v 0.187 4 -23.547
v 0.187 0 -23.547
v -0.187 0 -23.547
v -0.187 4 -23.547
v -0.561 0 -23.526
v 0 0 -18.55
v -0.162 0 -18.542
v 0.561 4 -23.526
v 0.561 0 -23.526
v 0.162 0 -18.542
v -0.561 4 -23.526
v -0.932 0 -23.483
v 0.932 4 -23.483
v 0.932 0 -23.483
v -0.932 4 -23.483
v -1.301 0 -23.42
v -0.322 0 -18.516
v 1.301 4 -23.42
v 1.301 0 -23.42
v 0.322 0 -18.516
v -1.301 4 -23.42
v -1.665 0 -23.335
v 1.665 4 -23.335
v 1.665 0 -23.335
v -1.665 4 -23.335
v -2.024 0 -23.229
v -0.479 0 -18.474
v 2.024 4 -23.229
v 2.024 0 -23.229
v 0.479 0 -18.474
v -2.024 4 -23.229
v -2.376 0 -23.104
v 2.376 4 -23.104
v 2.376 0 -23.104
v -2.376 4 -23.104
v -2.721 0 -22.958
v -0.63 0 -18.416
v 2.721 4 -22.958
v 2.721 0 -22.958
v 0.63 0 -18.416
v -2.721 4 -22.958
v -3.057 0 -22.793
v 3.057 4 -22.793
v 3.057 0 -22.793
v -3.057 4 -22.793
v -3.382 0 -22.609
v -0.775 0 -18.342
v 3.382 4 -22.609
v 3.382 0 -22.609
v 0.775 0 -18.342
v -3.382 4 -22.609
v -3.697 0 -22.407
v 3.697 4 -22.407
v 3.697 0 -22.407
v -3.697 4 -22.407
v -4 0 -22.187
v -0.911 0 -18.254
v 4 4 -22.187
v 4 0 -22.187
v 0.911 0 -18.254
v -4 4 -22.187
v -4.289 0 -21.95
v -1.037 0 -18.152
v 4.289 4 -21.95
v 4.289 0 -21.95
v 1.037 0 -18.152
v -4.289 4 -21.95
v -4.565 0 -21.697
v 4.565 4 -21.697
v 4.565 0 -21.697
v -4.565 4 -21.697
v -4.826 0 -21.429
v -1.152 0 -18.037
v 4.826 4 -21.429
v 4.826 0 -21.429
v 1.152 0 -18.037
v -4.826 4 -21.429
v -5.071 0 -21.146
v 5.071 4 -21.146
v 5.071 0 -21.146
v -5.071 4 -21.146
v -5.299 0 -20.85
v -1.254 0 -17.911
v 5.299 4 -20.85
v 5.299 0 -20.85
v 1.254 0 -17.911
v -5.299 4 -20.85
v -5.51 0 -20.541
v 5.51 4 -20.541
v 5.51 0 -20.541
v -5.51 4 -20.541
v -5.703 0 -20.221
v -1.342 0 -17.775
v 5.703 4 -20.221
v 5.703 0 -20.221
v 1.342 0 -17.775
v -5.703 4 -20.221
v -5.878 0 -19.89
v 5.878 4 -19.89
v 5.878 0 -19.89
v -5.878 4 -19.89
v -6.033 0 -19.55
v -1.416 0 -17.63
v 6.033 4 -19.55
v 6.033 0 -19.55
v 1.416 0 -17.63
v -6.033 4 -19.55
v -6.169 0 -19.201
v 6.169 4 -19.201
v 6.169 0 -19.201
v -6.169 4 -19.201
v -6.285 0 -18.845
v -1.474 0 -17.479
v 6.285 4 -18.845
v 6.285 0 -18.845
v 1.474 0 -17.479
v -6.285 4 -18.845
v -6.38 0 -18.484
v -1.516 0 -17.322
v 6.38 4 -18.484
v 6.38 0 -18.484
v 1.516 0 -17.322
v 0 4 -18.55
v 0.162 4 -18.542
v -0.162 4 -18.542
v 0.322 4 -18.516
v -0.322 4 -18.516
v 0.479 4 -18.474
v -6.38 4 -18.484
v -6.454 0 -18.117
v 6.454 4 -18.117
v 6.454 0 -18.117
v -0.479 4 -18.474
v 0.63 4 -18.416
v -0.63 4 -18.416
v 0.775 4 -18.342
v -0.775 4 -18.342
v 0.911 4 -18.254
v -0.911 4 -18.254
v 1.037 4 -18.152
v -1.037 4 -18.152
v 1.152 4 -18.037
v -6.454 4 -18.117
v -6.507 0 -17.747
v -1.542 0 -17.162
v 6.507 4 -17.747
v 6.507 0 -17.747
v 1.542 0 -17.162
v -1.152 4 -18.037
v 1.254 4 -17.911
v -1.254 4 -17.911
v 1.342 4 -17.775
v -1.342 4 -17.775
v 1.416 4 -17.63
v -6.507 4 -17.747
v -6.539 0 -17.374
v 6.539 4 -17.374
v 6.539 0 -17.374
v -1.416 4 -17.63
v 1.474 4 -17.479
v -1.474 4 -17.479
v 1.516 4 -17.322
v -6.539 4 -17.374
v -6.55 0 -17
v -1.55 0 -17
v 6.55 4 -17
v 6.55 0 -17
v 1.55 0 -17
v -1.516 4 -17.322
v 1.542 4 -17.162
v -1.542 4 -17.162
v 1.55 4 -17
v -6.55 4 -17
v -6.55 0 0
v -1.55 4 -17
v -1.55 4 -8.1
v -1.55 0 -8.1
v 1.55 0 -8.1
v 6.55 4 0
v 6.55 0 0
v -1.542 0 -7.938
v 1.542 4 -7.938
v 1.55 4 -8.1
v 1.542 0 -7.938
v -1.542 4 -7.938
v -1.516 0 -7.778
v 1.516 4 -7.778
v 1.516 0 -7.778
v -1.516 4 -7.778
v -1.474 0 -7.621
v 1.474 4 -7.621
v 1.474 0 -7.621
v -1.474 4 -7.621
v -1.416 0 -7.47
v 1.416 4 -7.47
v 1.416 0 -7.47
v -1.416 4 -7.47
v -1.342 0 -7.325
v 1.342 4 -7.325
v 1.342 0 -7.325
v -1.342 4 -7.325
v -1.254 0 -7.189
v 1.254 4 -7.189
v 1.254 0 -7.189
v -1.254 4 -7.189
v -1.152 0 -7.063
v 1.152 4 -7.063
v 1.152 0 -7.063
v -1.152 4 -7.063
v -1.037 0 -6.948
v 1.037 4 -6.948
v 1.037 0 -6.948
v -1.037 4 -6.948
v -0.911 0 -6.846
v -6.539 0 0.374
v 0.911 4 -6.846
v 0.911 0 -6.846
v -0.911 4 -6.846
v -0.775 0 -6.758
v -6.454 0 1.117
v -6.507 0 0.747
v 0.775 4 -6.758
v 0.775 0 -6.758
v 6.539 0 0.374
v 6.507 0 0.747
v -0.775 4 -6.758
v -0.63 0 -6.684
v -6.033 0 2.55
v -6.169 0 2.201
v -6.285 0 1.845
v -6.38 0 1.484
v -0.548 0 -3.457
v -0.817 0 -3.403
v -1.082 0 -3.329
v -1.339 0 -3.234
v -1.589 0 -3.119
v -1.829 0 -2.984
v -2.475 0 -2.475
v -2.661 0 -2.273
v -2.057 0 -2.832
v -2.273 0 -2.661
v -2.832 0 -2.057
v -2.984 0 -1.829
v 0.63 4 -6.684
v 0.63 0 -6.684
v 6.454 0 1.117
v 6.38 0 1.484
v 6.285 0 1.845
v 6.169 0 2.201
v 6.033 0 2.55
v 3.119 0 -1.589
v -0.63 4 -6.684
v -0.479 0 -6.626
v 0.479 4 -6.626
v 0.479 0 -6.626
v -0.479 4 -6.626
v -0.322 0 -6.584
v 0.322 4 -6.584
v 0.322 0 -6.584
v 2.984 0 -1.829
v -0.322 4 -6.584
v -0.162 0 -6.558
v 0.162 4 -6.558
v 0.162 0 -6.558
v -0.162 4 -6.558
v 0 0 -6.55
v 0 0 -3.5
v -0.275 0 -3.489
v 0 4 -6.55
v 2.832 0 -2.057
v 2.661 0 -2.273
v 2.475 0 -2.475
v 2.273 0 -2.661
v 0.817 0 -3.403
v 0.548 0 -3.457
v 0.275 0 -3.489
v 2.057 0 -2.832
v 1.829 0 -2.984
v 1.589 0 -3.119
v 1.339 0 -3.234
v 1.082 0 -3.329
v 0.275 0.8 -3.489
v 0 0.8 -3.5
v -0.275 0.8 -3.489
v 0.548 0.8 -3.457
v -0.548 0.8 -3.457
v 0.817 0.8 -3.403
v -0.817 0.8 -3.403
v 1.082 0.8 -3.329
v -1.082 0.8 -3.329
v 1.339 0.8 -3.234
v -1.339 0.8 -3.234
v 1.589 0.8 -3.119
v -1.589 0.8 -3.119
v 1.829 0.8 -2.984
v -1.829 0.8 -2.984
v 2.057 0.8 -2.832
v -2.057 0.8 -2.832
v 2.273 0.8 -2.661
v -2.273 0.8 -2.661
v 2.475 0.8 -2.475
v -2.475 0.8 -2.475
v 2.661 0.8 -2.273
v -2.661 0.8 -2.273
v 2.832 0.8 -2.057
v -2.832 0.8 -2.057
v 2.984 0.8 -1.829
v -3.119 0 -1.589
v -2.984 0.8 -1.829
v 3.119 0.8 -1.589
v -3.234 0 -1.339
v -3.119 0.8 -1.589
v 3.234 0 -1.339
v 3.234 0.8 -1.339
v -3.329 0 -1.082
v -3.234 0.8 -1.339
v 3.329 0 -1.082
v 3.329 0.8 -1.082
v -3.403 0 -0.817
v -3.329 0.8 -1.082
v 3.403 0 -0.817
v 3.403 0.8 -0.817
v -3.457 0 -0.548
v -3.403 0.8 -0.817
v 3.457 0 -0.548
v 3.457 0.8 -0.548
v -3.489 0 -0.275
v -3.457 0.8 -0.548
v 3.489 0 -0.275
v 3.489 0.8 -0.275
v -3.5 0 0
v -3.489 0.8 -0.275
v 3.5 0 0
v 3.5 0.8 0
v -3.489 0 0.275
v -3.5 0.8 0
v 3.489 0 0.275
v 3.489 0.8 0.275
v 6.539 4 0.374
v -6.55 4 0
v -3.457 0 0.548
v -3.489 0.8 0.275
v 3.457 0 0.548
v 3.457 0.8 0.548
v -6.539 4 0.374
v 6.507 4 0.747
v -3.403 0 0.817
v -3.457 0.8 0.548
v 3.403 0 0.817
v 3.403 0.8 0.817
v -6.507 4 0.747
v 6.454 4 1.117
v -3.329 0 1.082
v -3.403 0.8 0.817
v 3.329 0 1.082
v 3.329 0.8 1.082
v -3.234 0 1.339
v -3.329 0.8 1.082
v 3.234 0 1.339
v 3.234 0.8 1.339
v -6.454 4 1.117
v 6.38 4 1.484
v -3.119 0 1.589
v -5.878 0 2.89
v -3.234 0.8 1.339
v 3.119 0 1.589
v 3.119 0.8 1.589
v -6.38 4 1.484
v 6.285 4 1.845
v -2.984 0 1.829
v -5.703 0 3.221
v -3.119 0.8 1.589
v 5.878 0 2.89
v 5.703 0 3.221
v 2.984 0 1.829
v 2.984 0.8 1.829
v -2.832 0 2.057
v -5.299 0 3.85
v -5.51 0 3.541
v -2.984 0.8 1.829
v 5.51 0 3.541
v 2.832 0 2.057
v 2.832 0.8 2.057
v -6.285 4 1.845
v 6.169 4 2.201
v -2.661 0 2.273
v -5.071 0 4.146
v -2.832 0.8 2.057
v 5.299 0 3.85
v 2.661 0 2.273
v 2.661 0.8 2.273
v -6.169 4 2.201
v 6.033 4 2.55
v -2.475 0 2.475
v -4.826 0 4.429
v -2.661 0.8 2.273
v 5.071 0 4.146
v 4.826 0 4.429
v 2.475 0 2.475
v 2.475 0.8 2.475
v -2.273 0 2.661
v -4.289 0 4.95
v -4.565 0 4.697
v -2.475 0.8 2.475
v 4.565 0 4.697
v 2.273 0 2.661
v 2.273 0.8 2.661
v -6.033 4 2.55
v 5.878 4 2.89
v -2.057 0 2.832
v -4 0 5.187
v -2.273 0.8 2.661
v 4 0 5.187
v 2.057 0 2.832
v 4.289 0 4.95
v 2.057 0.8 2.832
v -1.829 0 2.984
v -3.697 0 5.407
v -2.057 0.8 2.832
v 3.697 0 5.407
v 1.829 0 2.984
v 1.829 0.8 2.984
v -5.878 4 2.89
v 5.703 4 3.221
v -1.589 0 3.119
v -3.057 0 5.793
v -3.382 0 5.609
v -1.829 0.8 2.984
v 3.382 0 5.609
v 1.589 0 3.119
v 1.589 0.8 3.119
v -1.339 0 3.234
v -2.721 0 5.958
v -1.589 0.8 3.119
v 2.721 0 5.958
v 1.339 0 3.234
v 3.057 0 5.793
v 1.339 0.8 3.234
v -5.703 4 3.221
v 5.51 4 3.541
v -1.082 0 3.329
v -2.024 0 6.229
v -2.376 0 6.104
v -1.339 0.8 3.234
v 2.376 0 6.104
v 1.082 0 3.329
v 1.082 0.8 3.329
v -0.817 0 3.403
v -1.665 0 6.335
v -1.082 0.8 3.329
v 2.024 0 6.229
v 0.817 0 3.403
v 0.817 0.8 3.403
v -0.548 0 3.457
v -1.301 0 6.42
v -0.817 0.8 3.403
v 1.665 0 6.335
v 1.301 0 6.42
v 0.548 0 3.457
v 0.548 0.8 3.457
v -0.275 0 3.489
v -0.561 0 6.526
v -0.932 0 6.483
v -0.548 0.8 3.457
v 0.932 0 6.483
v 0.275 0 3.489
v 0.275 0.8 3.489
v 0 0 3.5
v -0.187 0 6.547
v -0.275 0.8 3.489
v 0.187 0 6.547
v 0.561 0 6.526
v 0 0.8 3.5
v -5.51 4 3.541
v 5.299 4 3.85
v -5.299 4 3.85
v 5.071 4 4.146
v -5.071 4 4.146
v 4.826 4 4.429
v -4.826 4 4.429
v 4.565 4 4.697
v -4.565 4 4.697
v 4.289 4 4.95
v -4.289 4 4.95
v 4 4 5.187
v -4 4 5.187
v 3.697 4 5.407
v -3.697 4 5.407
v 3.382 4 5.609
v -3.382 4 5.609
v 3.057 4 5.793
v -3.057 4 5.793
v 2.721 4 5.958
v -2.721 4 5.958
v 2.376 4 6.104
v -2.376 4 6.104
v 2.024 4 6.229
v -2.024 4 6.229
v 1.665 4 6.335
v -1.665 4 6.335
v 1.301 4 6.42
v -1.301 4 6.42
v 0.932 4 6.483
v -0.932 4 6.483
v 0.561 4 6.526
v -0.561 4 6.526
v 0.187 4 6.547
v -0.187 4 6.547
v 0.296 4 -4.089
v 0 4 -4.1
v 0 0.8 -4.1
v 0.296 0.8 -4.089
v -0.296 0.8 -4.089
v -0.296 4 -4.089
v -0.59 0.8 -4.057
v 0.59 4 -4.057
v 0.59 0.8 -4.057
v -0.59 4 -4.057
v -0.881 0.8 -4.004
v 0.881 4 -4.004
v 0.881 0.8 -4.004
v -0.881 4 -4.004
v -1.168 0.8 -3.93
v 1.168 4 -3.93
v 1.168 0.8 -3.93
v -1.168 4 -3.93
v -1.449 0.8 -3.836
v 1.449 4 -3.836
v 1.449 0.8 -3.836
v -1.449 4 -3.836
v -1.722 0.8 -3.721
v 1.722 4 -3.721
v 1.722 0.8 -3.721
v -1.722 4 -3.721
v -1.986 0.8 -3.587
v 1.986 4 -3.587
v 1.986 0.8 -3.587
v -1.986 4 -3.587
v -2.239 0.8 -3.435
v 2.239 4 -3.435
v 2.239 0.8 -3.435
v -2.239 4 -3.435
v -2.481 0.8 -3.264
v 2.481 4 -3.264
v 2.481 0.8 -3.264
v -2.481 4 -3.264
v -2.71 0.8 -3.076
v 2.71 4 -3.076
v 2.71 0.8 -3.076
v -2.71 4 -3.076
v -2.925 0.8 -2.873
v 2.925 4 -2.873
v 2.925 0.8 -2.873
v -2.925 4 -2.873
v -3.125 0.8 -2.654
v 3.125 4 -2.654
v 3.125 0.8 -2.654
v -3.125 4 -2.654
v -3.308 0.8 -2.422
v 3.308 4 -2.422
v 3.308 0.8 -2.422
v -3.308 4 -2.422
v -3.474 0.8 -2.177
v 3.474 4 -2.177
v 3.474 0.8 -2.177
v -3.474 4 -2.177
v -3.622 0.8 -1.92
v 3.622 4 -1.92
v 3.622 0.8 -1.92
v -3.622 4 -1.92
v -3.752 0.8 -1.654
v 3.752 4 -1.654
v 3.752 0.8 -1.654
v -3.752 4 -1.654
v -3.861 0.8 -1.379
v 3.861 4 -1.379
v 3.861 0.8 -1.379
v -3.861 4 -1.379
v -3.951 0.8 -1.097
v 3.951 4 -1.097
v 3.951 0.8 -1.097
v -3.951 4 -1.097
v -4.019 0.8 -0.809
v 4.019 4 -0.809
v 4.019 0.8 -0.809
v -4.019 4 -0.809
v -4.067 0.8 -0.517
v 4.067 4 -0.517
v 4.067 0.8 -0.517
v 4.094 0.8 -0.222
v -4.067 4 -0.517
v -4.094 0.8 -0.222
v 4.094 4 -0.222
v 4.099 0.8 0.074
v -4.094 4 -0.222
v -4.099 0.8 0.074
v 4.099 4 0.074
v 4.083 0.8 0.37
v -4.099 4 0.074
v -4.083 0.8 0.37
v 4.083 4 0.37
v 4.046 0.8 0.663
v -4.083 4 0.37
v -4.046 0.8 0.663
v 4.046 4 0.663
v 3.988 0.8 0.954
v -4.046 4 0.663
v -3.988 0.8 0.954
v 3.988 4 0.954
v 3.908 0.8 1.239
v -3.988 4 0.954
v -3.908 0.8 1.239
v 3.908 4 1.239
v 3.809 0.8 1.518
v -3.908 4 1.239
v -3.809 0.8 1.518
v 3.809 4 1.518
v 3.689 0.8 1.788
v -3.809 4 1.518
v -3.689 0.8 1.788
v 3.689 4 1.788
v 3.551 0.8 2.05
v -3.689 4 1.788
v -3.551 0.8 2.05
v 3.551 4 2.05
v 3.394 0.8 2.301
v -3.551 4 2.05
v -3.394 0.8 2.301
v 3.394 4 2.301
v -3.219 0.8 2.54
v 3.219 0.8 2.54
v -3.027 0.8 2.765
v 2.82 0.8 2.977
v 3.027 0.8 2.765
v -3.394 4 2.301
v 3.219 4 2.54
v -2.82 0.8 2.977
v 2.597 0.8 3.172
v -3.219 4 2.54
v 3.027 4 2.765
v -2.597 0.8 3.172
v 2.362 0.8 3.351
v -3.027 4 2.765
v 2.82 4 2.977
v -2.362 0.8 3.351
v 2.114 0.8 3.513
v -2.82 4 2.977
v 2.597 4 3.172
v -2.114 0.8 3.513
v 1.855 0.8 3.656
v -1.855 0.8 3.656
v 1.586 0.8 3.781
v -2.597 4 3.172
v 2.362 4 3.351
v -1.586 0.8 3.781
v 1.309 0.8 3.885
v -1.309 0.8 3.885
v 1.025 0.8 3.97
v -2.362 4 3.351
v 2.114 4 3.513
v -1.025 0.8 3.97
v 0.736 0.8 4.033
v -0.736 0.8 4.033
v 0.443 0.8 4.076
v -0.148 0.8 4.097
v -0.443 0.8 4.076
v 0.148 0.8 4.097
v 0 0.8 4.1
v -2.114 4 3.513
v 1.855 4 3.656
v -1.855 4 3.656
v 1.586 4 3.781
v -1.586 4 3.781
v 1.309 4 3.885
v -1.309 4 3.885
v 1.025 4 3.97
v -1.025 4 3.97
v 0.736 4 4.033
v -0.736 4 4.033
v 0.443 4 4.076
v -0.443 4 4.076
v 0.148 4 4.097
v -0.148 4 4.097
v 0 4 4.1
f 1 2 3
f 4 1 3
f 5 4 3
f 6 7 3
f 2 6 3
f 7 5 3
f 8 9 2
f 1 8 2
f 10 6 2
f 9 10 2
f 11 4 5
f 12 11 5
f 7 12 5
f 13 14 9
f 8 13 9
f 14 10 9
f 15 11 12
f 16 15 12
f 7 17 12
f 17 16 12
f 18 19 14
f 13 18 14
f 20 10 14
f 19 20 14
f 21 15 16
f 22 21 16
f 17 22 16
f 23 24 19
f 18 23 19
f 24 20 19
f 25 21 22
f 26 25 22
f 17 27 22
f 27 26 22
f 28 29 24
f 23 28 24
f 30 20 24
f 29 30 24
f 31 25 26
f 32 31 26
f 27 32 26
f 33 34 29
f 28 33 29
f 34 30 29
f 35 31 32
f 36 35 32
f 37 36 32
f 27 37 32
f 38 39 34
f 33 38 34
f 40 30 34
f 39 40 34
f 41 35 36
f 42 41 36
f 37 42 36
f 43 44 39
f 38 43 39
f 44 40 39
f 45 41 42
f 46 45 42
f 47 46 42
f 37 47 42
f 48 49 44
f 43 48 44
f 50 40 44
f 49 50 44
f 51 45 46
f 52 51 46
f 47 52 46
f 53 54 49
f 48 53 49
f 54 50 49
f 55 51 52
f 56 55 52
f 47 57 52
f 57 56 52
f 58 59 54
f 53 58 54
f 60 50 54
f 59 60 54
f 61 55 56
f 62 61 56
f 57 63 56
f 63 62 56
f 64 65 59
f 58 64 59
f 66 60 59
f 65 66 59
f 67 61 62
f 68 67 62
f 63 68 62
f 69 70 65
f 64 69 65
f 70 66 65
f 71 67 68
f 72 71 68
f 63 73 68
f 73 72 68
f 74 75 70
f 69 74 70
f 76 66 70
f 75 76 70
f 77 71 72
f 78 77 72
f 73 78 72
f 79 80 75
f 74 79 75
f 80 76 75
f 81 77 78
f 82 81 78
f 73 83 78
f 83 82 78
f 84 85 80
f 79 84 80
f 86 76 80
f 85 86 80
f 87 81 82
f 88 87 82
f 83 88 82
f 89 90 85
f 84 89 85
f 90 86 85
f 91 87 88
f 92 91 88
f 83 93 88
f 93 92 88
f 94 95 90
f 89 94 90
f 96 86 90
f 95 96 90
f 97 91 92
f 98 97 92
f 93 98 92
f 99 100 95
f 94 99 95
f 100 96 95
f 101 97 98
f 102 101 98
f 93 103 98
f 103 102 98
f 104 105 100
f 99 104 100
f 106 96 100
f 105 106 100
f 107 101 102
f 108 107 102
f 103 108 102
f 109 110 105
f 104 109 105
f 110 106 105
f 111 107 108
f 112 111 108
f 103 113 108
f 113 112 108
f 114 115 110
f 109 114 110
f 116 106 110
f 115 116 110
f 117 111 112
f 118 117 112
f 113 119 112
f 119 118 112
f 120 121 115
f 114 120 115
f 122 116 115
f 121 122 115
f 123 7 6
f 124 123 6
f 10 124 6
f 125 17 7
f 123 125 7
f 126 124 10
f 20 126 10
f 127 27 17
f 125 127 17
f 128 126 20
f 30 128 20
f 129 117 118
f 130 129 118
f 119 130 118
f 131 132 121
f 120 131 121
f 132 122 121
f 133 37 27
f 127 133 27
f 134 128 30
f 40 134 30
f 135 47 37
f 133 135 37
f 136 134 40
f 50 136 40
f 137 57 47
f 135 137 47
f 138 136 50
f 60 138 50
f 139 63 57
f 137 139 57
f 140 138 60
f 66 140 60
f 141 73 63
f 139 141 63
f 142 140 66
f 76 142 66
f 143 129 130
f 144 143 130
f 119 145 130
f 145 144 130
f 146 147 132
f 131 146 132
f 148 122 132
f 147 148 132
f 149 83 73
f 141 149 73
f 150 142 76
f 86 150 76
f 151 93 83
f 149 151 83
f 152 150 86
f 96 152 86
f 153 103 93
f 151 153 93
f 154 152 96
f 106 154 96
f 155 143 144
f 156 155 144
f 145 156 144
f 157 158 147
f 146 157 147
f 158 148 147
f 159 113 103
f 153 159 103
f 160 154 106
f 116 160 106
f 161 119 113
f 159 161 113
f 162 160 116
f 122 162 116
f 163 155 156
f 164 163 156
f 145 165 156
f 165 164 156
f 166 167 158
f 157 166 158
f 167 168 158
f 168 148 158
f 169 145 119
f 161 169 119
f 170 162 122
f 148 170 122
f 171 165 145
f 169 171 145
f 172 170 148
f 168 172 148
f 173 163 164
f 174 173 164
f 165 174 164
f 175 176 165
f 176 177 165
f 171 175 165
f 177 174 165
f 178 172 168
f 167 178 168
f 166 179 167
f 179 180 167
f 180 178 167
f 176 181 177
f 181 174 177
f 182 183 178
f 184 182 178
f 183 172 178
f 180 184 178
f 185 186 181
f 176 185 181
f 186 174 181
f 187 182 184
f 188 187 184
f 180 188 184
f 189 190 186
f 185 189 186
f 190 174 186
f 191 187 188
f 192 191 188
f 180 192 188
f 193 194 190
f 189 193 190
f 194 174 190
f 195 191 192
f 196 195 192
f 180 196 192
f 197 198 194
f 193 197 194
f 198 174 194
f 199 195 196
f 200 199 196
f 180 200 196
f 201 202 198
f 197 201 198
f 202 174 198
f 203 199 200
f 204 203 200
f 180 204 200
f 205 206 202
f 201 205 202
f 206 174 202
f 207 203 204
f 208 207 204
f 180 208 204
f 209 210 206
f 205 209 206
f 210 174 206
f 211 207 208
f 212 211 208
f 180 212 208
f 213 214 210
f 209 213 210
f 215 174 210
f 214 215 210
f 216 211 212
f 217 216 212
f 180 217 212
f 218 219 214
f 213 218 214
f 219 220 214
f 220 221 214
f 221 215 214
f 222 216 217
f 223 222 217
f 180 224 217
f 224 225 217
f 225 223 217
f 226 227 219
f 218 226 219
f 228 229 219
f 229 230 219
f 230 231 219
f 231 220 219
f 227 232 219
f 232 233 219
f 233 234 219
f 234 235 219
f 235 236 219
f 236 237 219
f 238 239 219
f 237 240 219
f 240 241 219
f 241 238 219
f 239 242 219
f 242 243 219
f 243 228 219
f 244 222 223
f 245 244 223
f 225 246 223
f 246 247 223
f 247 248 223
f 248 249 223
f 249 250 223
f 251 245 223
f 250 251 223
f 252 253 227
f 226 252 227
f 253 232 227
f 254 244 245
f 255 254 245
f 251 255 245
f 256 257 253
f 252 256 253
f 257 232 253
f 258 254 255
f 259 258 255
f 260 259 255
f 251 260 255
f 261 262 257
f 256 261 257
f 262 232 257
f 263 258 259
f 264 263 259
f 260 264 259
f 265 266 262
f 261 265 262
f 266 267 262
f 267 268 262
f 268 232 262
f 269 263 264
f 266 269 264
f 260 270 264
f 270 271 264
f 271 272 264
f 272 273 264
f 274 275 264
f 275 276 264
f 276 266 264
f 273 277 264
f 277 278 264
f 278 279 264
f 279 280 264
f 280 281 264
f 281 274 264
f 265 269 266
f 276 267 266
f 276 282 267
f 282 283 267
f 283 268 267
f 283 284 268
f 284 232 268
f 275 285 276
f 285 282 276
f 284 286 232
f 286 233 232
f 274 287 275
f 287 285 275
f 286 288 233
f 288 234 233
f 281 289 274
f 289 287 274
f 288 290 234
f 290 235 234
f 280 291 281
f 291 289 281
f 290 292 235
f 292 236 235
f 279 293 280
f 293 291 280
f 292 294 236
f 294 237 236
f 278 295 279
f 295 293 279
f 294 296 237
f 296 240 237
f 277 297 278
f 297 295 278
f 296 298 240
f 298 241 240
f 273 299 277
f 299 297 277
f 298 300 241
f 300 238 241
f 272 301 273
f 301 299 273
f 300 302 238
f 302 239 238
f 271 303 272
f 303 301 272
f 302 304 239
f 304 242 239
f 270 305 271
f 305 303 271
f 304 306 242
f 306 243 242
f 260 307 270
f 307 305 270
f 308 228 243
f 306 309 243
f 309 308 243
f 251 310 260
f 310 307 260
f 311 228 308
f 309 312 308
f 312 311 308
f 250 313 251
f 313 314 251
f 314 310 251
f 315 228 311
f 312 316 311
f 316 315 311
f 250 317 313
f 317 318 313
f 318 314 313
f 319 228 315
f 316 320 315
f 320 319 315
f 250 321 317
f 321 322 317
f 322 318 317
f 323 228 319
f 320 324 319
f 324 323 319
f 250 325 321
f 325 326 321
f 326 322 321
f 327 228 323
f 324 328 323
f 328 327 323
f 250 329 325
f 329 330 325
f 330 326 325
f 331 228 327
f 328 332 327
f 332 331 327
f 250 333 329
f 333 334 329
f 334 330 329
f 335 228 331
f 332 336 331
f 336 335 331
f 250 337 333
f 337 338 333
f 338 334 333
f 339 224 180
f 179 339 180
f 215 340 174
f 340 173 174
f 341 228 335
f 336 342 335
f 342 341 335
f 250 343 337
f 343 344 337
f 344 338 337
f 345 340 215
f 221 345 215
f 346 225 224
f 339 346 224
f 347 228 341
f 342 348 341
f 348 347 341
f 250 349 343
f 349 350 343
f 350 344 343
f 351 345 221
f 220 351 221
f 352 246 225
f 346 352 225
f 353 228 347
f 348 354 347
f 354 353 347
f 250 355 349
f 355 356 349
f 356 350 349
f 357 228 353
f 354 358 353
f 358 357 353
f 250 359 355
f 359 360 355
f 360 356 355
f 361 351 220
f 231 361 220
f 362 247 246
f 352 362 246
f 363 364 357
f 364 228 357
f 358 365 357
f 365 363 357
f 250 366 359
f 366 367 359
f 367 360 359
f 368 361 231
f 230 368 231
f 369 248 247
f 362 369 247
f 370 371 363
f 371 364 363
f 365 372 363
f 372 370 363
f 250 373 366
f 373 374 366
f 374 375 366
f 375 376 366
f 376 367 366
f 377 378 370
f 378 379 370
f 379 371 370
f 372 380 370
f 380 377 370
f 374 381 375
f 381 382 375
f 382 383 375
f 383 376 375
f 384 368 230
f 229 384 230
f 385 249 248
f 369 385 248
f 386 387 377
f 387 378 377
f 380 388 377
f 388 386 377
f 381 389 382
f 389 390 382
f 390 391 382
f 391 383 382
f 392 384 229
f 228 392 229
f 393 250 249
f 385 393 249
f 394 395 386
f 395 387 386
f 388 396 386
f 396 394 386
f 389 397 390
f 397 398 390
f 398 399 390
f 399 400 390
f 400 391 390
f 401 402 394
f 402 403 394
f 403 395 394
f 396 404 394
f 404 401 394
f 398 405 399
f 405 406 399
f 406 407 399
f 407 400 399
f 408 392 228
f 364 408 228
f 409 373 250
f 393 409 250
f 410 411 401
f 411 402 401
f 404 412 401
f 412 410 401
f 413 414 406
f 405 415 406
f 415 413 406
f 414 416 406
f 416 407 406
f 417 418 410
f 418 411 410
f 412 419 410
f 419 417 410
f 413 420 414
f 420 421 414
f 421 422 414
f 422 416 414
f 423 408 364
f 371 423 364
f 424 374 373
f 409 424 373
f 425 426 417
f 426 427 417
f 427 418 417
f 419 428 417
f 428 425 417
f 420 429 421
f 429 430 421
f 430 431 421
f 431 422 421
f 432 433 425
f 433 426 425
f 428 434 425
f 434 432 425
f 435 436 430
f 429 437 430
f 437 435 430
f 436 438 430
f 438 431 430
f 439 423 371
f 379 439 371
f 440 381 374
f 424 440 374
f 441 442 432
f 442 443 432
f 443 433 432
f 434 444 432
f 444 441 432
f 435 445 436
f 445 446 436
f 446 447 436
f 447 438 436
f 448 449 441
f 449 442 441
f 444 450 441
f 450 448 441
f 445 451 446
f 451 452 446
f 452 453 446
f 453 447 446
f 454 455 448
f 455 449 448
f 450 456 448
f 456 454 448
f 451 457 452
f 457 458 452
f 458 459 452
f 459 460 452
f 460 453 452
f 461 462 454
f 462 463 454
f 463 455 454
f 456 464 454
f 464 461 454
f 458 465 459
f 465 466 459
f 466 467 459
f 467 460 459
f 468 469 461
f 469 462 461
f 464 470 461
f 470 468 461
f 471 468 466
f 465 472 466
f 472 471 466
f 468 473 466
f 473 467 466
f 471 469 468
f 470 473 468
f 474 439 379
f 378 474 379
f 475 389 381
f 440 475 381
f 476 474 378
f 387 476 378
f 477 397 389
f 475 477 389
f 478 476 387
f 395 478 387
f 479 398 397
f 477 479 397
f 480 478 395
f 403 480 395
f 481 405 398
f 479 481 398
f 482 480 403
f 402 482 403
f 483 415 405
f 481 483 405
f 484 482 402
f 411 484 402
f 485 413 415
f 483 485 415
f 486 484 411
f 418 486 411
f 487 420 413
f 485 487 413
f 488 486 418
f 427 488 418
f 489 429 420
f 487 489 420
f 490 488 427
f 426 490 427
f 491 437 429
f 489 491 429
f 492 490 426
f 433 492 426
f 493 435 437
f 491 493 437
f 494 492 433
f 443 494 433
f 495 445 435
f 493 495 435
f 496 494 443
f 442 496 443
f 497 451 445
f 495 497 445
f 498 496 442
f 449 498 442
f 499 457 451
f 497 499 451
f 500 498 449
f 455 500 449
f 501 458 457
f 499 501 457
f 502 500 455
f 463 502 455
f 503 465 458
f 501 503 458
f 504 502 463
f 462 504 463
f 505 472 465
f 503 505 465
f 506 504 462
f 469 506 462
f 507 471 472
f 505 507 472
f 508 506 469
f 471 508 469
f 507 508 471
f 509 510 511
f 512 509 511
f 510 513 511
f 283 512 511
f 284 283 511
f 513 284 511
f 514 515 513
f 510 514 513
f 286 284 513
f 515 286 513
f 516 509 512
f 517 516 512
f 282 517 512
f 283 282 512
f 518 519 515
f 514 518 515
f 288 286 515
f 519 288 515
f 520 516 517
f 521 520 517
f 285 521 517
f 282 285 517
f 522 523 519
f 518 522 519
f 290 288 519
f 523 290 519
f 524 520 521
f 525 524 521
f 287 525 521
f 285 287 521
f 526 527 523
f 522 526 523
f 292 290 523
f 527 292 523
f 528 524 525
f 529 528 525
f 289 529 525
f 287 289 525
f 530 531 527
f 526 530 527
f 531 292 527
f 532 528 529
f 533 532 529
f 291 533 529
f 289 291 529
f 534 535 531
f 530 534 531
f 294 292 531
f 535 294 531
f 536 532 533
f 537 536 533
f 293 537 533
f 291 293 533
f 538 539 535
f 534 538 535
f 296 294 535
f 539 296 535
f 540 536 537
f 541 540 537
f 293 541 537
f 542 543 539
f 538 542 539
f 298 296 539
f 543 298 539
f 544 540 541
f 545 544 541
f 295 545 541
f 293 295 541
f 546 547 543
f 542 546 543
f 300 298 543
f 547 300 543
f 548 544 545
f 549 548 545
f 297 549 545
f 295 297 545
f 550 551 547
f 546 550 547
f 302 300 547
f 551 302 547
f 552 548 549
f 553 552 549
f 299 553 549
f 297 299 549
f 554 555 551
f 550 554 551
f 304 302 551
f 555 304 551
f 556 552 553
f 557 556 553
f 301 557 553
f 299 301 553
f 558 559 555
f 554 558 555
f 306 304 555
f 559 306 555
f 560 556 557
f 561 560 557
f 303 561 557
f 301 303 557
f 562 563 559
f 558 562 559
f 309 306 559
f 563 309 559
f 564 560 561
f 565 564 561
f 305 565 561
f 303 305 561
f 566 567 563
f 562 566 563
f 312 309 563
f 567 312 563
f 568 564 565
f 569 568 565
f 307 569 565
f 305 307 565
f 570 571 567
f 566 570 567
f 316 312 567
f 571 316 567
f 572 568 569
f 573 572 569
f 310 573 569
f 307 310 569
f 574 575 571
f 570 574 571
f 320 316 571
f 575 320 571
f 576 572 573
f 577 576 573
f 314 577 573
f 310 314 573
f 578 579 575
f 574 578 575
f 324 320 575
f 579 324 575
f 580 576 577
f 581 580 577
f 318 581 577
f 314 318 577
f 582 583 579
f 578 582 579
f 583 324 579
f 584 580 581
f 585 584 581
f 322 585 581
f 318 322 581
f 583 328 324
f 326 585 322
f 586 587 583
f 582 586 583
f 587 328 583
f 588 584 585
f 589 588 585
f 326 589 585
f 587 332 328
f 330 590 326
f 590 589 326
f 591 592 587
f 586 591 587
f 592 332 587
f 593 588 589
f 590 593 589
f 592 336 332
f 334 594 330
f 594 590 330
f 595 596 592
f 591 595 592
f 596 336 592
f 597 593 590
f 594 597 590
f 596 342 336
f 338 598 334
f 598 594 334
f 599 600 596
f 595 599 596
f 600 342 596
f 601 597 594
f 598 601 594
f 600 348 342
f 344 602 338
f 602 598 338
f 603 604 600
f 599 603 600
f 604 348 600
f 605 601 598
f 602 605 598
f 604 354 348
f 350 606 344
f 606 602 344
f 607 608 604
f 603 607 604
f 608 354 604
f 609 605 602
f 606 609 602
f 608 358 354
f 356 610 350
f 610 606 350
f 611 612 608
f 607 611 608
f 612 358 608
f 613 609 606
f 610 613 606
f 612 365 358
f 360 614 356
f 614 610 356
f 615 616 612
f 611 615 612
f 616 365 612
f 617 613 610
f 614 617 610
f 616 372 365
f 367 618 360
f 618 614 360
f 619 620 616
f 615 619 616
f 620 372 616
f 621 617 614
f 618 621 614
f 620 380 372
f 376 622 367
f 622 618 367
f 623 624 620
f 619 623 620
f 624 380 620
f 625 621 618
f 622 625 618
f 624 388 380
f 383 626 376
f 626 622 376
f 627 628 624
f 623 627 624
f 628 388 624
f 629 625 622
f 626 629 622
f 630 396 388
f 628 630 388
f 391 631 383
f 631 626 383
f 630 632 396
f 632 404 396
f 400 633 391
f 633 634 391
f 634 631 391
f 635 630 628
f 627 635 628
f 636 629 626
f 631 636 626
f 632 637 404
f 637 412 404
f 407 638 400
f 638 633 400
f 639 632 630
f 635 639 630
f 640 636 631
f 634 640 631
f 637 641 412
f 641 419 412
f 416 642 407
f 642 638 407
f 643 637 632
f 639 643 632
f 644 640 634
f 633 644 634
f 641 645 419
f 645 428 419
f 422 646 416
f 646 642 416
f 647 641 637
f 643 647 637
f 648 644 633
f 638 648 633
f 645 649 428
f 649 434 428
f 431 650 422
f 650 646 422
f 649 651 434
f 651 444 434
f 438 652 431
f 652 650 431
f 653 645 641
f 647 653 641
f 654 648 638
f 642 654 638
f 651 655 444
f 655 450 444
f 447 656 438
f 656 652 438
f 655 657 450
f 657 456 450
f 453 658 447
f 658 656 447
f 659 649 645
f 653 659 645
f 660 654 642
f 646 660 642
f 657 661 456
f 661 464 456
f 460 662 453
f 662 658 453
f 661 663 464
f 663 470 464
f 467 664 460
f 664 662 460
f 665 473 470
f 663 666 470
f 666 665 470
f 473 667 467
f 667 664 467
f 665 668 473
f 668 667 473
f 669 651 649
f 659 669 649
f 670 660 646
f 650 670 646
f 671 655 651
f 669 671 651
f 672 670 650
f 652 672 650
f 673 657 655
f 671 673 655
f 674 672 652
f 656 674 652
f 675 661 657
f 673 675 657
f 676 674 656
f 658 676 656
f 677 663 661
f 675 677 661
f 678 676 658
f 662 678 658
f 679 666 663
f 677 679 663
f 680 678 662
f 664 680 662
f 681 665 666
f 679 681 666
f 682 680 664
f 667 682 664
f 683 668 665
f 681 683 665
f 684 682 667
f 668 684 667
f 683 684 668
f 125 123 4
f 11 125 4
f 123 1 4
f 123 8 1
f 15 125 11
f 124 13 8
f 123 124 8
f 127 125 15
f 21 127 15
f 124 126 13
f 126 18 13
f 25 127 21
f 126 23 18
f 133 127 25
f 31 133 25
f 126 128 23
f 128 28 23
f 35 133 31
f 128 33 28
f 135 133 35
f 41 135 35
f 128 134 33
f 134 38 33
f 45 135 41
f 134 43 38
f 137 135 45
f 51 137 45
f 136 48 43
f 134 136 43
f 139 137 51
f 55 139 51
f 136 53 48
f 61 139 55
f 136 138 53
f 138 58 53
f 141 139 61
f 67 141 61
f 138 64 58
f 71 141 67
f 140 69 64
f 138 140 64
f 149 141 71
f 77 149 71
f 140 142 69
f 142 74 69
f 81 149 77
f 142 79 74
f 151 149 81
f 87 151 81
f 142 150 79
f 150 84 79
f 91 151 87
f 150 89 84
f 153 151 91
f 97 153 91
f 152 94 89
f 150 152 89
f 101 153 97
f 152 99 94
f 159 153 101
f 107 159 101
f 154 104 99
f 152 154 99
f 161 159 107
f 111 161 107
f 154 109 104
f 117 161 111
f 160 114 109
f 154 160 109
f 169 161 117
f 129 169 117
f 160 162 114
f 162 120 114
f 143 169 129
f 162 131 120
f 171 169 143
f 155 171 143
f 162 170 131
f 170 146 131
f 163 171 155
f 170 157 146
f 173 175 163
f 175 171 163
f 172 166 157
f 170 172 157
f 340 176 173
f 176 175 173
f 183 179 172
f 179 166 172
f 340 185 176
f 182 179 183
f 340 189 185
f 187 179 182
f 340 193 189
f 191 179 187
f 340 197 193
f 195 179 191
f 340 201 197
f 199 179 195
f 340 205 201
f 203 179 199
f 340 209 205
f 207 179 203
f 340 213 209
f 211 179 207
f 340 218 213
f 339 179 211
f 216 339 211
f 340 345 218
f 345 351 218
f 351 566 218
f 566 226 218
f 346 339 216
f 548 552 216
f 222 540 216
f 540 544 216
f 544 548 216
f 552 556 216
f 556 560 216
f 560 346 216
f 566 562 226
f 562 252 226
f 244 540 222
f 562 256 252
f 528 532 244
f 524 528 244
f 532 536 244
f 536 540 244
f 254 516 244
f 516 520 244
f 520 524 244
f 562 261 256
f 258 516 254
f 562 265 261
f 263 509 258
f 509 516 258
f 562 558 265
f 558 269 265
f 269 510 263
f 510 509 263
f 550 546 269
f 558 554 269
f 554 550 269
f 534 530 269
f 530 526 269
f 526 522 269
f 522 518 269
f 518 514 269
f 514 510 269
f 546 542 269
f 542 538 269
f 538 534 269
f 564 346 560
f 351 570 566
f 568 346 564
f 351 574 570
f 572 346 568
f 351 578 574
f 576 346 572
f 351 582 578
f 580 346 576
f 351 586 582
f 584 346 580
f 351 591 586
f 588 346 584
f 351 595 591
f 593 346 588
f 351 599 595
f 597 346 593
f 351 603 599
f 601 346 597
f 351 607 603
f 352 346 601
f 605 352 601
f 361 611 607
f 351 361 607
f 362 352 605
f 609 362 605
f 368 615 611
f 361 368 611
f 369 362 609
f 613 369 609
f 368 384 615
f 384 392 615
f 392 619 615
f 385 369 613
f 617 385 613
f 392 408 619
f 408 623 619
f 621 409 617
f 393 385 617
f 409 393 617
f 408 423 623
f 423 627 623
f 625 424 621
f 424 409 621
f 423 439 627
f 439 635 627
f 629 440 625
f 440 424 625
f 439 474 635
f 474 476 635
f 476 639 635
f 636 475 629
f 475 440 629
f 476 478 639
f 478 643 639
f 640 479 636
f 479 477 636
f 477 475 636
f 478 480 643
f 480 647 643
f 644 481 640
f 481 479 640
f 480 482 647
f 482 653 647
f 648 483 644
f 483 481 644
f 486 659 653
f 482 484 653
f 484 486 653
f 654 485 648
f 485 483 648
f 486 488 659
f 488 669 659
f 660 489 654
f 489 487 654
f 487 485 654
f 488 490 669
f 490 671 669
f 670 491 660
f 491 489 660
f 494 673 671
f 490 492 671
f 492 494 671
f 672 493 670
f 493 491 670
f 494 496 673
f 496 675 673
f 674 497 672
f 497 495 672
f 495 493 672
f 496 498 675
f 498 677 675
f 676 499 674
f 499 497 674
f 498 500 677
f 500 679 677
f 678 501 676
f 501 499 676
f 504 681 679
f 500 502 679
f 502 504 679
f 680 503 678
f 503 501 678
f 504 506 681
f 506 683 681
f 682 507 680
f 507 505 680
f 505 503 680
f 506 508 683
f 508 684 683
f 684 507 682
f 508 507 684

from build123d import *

# Parameters (mm, degrees)
SKETCH1_R           = 4.1
BOSS_EXTRUDE1_DEPTH = 4
SKETCH2_R           = 4.1
BOSS_EXTRUDE2_DEPTH = 0.8
SKETCH3_R           = 3.5
CUT_EXTRUDE1_DEPTH  = 1.8


with BuildPart() as part:
    # Sketch1 → Boss-Extrude1 (new body)
    with BuildSketch(Plane(origin=(0, 0, 0), x_dir=(1, 0, 0), z_dir=(0, 1, 0))):
        with BuildLine():
            ThreePointArc((-6.55, 0), (0, -6.55), (6.55, 0))
            Line((6.55, 0), (6.55, 17))
            ThreePointArc((6.55, 17), (0, 23.55), (-6.55, 17))
            Line((-6.55, 17), (-6.55, 0))
        make_face()
        Circle(SKETCH1_R, mode=Mode.SUBTRACT)
        with BuildLine():
            Line((-1.55, 8.1), (-1.55, 17))
            ThreePointArc((-1.55, 17), (0, 18.55), (1.55, 17))
            Line((1.55, 17), (1.55, 8.1))
            ThreePointArc((1.55, 8.1), (0, 6.55), (-1.55, 8.1))
        make_face(mode=Mode.SUBTRACT)
    extrude(amount=BOSS_EXTRUDE1_DEPTH)

    # Sketch2 → Boss-Extrude2 (add)
    with BuildSketch(Plane(origin=(0, 0, 0), x_dir=(1, 0, 0), z_dir=(0, 1, 0))):
        Circle(SKETCH2_R)
    extrude(amount=BOSS_EXTRUDE2_DEPTH)

    # Sketch3 → Cut-Extrude1 (cut, through all)
    with BuildSketch(Plane(origin=(0, 0.8, 0), x_dir=(1, 0, 0), z_dir=(0, 1, 0))):
        Circle(SKETCH3_R)
    extrude(amount=-CUT_EXTRUDE1_DEPTH, mode=Mode.SUBTRACT)


solid = part.part
